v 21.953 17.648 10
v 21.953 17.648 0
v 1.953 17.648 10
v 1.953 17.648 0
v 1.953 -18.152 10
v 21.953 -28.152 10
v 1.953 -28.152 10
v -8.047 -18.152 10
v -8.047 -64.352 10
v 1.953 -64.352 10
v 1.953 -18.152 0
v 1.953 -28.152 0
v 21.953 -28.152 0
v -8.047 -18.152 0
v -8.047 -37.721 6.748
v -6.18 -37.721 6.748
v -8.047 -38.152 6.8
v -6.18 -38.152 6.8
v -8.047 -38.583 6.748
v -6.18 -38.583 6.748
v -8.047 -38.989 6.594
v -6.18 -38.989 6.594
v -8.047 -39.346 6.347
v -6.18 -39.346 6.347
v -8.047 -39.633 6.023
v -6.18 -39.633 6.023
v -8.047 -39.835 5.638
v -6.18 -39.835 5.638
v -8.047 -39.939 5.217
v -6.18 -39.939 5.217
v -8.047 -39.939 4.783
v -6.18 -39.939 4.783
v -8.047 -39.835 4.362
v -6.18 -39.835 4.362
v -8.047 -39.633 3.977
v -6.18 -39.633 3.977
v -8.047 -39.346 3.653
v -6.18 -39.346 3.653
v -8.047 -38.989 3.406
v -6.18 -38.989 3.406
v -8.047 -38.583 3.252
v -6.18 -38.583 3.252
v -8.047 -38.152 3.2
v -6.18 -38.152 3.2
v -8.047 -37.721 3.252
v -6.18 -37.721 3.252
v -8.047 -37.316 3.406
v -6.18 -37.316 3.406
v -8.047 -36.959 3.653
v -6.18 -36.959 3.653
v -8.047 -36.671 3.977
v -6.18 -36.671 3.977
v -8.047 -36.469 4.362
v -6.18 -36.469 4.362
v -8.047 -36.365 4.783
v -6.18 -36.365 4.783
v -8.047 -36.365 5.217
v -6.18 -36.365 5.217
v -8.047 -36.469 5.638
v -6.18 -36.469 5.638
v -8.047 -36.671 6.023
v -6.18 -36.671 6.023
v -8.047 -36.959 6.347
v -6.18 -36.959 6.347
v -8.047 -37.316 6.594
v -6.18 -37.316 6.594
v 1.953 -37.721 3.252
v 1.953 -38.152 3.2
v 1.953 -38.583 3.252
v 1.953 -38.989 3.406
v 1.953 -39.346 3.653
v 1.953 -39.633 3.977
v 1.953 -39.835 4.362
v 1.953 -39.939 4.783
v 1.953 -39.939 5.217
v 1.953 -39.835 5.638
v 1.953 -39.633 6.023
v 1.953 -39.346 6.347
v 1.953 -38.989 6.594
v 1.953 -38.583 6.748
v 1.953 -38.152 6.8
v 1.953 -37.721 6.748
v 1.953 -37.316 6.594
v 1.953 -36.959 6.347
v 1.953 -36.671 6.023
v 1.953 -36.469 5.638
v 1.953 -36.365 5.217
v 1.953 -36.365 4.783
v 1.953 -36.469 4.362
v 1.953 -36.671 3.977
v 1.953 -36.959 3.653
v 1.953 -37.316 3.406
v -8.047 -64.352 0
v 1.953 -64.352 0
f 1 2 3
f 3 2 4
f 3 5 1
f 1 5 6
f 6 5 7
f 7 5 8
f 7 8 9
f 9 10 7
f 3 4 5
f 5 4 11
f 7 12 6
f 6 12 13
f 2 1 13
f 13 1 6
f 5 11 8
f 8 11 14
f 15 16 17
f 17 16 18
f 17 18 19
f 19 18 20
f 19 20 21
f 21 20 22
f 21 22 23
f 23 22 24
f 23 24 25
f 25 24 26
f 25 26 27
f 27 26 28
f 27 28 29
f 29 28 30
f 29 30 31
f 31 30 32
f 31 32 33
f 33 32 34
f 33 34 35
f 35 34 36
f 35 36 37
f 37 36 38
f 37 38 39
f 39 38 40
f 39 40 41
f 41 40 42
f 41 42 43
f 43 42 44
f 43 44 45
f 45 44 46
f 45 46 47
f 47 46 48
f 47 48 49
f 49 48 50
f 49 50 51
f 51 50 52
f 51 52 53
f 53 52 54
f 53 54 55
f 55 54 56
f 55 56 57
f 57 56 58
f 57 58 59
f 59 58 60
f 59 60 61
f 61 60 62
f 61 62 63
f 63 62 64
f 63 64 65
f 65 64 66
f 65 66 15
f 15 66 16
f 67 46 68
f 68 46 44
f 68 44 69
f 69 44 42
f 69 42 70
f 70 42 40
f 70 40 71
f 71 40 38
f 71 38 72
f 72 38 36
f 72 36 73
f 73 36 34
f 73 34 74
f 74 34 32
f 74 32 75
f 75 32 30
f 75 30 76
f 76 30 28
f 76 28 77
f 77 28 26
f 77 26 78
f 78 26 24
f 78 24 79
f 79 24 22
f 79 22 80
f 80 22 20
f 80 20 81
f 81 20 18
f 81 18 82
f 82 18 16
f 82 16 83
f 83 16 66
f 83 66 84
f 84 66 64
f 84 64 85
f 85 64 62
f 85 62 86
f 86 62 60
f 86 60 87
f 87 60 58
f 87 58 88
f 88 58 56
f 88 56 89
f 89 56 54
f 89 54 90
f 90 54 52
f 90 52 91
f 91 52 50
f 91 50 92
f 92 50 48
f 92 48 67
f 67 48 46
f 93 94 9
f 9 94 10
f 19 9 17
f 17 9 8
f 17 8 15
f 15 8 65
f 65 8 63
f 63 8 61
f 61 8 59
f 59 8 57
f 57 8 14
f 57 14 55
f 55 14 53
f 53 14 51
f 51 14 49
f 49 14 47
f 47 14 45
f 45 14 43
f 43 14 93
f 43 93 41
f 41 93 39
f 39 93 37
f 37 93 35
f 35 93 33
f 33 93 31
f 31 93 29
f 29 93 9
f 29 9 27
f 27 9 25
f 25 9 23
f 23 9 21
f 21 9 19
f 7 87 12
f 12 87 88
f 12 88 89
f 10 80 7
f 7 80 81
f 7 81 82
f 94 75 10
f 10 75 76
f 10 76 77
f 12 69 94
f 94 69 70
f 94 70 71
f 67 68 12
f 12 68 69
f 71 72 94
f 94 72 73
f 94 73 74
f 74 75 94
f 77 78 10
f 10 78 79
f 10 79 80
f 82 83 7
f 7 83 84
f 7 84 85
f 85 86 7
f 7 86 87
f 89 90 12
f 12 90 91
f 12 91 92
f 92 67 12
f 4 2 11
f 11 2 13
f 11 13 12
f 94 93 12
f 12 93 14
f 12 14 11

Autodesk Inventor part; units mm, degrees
ref_plane "YZ Plane" through (0, 0, 0) normal (1, 0, 0) x (0, 1, 0)
ref_plane "XZ Plane" through (0, 0, 0) normal (0, 1, 0) x (-1, 0, 0)
ref_plane "XY Plane" through (0, 0, 0) normal (0, 0, 1) x (1, 0, 0)
sketch "Sketch1" plane through (0, 0, 0) normal (0, 0, 1) x (1, 0, 0)
  line L0 (-8.0472, -28.1521) -> (1.9528, -28.1521)
  line L1 (1.9528, -28.1521) -> (1.9528, -64.3521)
  line L2 (1.9528, -64.3521) -> (-8.0472, -64.3521)
  line L3 (-8.0472, -64.3521) -> (-8.0472, -28.1521)
  point P0 (0, 0)
  dimension "d0" = 10
  dimension "d1" = 36.2
extrude "Extrusion1" add sketch "Sketch1" along normal blind 10
sketch "Sketch3" plane through (1.9528, -64.3521, 0) normal (1, 0, 0) x (0, 0, -1)
  line L0 (0, 36.2) -> (-10, 36.2) projected
  line L1 (-5, 36.2) -> (-5, 26.2)
  point P0 (0, 64.3521)
  dimension "d12" = 10
hole "Hole2" at (1.9528, -38.1521, 5) direction (-1, 0, 0) diameter 3.6 end through all clearance for "Flat Head Machine Screw" size "M3" standard "Ansi Metric M Profile"
sketch "Sketch4" plane through (-8.0472, -28.1521, 0) normal (0, 1, 0) x (1, 0, 0)
  line L0 (10, -10) -> (0, -10) projected
  line L1 (10, 0) -> (10, -10) projected
  line L2 (0, -10) -> (10, -10)
  line L3 (10, -10) -> (10, 0)
  line L4 (10, 0) -> (0, 0)
  line L5 (0, 0) -> (0, -10)
  point P0 (8.0472, 0)
extrude "Extrusion2" add sketch "Sketch4" along normal blind 10
sketch "Sketch5" plane through (1.9528, -64.3521, 10) normal (1, 0, 0) x (0, 0, -1)
  line L0 (0, 0) -> (0, 46.2) projected
  line L1 (0, 46.2) -> (10, 46.2)
  line L2 (10, 46.2) -> (10, 36.2)
  line L3 (10, 36.2) -> (0, 36.2)
  line L4 (0, 36.2) -> (0, 46.2)
  point P0 (10, 64.3521)
  dimension "d22" = 10
  dimension "d23" = 10
extrude "Extrusion3" add sketch "Sketch5" along normal blind 20
sketch "Sketch6" plane through (-8.0472, -18.1521, 0) normal (0, 1, 0) x (1, 0, 0)
  line L0 (0, -10) -> (30, -10) projected
  line L1 (10, 0) -> (30, 0)
  line L2 (30, 0) -> (30, -10)
  line L3 (30, -10) -> (10, -10)
  line L4 (10, -10) -> (10, 0)
  point P0 (8.0472, 0)
  point P1 (10, -10)
extrude "Extrusion4" add sketch "Sketch6" along normal blind 50.8
sketch "Sketch7" plane through (-8.0472, 32.6479, 0) normal (0, 1, 0) x (1, 0, 0)
  line L0 (30, 0) -> (10, 0) projected
  line L1 (10, 0) -> (10, -10) projected
  line L2 (10, -10) -> (30, -10) projected
  line L3 (30, -10) -> (30, 0) projected
  point P0 (8.0472, 0)
extrude "Extrusion5" cut sketch "Sketch7" against normal blind 15
properties part number "lever staggered"
